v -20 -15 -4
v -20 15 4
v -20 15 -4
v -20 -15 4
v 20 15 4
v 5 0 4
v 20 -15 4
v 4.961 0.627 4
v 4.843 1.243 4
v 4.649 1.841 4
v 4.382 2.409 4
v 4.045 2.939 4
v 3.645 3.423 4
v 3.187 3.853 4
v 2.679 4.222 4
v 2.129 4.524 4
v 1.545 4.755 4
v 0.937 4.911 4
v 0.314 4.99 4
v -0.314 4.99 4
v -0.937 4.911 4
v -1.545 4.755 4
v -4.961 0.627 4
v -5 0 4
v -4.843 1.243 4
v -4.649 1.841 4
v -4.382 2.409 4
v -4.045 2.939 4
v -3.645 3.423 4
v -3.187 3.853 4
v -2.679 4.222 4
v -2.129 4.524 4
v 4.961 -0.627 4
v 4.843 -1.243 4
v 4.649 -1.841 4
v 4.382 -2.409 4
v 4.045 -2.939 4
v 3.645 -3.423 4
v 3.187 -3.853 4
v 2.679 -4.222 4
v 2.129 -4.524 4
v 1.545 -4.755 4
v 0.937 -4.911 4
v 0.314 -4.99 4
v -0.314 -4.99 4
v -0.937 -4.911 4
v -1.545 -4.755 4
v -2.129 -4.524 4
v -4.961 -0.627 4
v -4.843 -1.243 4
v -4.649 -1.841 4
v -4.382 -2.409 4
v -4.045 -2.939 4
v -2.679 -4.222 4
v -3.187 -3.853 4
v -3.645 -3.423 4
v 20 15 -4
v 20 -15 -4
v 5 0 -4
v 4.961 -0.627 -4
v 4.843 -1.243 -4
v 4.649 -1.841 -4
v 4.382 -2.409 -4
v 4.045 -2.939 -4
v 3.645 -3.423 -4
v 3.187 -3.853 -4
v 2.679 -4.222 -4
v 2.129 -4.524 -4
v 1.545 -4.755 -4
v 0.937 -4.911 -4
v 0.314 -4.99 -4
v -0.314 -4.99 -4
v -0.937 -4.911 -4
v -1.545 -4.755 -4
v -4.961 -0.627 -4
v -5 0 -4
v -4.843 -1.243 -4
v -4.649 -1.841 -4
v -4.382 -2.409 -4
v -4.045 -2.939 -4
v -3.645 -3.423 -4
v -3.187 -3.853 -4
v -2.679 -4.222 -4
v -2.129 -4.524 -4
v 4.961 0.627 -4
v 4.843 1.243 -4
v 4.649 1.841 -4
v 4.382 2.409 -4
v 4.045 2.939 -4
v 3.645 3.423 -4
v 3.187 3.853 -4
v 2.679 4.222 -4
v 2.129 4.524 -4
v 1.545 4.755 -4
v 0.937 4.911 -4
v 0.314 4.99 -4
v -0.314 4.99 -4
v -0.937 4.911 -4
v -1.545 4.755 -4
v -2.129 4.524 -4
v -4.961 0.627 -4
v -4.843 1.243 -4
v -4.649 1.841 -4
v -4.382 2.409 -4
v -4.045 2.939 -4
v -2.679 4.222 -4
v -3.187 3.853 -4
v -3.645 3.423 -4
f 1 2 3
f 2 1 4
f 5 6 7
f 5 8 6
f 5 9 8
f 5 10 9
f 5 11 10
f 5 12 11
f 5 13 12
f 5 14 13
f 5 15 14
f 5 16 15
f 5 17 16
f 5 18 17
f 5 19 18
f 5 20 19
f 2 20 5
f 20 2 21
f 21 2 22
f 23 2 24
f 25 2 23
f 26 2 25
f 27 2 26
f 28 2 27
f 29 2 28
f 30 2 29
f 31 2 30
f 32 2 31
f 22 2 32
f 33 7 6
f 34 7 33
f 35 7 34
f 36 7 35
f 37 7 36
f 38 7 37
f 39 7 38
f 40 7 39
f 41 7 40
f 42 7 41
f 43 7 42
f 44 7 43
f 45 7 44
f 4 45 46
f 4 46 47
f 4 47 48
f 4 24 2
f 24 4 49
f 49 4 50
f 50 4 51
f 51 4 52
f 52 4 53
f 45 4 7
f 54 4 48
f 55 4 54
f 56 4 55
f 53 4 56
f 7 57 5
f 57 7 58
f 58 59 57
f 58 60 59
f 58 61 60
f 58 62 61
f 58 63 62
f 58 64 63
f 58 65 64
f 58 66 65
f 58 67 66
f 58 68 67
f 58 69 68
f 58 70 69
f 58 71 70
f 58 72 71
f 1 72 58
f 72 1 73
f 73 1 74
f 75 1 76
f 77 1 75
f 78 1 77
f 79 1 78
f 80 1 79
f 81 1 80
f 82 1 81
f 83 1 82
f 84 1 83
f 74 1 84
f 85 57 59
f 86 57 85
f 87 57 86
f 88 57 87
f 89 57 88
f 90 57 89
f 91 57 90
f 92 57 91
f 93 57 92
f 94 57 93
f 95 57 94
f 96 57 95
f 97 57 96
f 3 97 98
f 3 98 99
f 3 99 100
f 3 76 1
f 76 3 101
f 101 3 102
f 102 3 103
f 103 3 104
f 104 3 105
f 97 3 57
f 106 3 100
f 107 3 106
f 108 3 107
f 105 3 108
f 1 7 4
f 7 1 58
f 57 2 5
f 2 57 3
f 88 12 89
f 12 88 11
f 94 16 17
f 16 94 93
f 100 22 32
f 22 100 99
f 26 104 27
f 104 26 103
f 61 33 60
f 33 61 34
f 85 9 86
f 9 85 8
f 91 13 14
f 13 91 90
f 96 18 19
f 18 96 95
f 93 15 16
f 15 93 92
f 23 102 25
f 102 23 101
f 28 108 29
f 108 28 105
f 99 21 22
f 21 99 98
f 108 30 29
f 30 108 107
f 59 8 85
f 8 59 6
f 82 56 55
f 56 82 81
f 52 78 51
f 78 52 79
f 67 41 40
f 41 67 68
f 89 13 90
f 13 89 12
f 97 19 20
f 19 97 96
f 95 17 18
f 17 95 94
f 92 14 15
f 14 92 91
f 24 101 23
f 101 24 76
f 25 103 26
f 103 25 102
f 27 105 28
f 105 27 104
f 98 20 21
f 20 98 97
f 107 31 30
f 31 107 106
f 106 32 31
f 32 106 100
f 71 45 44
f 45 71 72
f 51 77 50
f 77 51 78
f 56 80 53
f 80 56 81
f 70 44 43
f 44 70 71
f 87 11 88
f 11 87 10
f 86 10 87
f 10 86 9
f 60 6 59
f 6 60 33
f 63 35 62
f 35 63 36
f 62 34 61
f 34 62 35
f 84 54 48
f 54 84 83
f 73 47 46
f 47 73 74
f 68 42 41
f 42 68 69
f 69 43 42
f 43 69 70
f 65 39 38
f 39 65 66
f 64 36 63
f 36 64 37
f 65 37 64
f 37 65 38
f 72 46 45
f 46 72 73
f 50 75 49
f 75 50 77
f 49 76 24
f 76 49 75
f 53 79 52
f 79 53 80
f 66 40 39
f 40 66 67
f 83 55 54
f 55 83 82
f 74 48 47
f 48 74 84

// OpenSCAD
// 40 mm long, 30 mm wide, 8 mm thick plate with centered hole
difference() {
    // Main plate
    cube([40, 30, 8], center = true);
    
    // Cylindrical hole along Z axis
    cylinder(h = 10, d = 10, center = true, $fn = 50);
}
